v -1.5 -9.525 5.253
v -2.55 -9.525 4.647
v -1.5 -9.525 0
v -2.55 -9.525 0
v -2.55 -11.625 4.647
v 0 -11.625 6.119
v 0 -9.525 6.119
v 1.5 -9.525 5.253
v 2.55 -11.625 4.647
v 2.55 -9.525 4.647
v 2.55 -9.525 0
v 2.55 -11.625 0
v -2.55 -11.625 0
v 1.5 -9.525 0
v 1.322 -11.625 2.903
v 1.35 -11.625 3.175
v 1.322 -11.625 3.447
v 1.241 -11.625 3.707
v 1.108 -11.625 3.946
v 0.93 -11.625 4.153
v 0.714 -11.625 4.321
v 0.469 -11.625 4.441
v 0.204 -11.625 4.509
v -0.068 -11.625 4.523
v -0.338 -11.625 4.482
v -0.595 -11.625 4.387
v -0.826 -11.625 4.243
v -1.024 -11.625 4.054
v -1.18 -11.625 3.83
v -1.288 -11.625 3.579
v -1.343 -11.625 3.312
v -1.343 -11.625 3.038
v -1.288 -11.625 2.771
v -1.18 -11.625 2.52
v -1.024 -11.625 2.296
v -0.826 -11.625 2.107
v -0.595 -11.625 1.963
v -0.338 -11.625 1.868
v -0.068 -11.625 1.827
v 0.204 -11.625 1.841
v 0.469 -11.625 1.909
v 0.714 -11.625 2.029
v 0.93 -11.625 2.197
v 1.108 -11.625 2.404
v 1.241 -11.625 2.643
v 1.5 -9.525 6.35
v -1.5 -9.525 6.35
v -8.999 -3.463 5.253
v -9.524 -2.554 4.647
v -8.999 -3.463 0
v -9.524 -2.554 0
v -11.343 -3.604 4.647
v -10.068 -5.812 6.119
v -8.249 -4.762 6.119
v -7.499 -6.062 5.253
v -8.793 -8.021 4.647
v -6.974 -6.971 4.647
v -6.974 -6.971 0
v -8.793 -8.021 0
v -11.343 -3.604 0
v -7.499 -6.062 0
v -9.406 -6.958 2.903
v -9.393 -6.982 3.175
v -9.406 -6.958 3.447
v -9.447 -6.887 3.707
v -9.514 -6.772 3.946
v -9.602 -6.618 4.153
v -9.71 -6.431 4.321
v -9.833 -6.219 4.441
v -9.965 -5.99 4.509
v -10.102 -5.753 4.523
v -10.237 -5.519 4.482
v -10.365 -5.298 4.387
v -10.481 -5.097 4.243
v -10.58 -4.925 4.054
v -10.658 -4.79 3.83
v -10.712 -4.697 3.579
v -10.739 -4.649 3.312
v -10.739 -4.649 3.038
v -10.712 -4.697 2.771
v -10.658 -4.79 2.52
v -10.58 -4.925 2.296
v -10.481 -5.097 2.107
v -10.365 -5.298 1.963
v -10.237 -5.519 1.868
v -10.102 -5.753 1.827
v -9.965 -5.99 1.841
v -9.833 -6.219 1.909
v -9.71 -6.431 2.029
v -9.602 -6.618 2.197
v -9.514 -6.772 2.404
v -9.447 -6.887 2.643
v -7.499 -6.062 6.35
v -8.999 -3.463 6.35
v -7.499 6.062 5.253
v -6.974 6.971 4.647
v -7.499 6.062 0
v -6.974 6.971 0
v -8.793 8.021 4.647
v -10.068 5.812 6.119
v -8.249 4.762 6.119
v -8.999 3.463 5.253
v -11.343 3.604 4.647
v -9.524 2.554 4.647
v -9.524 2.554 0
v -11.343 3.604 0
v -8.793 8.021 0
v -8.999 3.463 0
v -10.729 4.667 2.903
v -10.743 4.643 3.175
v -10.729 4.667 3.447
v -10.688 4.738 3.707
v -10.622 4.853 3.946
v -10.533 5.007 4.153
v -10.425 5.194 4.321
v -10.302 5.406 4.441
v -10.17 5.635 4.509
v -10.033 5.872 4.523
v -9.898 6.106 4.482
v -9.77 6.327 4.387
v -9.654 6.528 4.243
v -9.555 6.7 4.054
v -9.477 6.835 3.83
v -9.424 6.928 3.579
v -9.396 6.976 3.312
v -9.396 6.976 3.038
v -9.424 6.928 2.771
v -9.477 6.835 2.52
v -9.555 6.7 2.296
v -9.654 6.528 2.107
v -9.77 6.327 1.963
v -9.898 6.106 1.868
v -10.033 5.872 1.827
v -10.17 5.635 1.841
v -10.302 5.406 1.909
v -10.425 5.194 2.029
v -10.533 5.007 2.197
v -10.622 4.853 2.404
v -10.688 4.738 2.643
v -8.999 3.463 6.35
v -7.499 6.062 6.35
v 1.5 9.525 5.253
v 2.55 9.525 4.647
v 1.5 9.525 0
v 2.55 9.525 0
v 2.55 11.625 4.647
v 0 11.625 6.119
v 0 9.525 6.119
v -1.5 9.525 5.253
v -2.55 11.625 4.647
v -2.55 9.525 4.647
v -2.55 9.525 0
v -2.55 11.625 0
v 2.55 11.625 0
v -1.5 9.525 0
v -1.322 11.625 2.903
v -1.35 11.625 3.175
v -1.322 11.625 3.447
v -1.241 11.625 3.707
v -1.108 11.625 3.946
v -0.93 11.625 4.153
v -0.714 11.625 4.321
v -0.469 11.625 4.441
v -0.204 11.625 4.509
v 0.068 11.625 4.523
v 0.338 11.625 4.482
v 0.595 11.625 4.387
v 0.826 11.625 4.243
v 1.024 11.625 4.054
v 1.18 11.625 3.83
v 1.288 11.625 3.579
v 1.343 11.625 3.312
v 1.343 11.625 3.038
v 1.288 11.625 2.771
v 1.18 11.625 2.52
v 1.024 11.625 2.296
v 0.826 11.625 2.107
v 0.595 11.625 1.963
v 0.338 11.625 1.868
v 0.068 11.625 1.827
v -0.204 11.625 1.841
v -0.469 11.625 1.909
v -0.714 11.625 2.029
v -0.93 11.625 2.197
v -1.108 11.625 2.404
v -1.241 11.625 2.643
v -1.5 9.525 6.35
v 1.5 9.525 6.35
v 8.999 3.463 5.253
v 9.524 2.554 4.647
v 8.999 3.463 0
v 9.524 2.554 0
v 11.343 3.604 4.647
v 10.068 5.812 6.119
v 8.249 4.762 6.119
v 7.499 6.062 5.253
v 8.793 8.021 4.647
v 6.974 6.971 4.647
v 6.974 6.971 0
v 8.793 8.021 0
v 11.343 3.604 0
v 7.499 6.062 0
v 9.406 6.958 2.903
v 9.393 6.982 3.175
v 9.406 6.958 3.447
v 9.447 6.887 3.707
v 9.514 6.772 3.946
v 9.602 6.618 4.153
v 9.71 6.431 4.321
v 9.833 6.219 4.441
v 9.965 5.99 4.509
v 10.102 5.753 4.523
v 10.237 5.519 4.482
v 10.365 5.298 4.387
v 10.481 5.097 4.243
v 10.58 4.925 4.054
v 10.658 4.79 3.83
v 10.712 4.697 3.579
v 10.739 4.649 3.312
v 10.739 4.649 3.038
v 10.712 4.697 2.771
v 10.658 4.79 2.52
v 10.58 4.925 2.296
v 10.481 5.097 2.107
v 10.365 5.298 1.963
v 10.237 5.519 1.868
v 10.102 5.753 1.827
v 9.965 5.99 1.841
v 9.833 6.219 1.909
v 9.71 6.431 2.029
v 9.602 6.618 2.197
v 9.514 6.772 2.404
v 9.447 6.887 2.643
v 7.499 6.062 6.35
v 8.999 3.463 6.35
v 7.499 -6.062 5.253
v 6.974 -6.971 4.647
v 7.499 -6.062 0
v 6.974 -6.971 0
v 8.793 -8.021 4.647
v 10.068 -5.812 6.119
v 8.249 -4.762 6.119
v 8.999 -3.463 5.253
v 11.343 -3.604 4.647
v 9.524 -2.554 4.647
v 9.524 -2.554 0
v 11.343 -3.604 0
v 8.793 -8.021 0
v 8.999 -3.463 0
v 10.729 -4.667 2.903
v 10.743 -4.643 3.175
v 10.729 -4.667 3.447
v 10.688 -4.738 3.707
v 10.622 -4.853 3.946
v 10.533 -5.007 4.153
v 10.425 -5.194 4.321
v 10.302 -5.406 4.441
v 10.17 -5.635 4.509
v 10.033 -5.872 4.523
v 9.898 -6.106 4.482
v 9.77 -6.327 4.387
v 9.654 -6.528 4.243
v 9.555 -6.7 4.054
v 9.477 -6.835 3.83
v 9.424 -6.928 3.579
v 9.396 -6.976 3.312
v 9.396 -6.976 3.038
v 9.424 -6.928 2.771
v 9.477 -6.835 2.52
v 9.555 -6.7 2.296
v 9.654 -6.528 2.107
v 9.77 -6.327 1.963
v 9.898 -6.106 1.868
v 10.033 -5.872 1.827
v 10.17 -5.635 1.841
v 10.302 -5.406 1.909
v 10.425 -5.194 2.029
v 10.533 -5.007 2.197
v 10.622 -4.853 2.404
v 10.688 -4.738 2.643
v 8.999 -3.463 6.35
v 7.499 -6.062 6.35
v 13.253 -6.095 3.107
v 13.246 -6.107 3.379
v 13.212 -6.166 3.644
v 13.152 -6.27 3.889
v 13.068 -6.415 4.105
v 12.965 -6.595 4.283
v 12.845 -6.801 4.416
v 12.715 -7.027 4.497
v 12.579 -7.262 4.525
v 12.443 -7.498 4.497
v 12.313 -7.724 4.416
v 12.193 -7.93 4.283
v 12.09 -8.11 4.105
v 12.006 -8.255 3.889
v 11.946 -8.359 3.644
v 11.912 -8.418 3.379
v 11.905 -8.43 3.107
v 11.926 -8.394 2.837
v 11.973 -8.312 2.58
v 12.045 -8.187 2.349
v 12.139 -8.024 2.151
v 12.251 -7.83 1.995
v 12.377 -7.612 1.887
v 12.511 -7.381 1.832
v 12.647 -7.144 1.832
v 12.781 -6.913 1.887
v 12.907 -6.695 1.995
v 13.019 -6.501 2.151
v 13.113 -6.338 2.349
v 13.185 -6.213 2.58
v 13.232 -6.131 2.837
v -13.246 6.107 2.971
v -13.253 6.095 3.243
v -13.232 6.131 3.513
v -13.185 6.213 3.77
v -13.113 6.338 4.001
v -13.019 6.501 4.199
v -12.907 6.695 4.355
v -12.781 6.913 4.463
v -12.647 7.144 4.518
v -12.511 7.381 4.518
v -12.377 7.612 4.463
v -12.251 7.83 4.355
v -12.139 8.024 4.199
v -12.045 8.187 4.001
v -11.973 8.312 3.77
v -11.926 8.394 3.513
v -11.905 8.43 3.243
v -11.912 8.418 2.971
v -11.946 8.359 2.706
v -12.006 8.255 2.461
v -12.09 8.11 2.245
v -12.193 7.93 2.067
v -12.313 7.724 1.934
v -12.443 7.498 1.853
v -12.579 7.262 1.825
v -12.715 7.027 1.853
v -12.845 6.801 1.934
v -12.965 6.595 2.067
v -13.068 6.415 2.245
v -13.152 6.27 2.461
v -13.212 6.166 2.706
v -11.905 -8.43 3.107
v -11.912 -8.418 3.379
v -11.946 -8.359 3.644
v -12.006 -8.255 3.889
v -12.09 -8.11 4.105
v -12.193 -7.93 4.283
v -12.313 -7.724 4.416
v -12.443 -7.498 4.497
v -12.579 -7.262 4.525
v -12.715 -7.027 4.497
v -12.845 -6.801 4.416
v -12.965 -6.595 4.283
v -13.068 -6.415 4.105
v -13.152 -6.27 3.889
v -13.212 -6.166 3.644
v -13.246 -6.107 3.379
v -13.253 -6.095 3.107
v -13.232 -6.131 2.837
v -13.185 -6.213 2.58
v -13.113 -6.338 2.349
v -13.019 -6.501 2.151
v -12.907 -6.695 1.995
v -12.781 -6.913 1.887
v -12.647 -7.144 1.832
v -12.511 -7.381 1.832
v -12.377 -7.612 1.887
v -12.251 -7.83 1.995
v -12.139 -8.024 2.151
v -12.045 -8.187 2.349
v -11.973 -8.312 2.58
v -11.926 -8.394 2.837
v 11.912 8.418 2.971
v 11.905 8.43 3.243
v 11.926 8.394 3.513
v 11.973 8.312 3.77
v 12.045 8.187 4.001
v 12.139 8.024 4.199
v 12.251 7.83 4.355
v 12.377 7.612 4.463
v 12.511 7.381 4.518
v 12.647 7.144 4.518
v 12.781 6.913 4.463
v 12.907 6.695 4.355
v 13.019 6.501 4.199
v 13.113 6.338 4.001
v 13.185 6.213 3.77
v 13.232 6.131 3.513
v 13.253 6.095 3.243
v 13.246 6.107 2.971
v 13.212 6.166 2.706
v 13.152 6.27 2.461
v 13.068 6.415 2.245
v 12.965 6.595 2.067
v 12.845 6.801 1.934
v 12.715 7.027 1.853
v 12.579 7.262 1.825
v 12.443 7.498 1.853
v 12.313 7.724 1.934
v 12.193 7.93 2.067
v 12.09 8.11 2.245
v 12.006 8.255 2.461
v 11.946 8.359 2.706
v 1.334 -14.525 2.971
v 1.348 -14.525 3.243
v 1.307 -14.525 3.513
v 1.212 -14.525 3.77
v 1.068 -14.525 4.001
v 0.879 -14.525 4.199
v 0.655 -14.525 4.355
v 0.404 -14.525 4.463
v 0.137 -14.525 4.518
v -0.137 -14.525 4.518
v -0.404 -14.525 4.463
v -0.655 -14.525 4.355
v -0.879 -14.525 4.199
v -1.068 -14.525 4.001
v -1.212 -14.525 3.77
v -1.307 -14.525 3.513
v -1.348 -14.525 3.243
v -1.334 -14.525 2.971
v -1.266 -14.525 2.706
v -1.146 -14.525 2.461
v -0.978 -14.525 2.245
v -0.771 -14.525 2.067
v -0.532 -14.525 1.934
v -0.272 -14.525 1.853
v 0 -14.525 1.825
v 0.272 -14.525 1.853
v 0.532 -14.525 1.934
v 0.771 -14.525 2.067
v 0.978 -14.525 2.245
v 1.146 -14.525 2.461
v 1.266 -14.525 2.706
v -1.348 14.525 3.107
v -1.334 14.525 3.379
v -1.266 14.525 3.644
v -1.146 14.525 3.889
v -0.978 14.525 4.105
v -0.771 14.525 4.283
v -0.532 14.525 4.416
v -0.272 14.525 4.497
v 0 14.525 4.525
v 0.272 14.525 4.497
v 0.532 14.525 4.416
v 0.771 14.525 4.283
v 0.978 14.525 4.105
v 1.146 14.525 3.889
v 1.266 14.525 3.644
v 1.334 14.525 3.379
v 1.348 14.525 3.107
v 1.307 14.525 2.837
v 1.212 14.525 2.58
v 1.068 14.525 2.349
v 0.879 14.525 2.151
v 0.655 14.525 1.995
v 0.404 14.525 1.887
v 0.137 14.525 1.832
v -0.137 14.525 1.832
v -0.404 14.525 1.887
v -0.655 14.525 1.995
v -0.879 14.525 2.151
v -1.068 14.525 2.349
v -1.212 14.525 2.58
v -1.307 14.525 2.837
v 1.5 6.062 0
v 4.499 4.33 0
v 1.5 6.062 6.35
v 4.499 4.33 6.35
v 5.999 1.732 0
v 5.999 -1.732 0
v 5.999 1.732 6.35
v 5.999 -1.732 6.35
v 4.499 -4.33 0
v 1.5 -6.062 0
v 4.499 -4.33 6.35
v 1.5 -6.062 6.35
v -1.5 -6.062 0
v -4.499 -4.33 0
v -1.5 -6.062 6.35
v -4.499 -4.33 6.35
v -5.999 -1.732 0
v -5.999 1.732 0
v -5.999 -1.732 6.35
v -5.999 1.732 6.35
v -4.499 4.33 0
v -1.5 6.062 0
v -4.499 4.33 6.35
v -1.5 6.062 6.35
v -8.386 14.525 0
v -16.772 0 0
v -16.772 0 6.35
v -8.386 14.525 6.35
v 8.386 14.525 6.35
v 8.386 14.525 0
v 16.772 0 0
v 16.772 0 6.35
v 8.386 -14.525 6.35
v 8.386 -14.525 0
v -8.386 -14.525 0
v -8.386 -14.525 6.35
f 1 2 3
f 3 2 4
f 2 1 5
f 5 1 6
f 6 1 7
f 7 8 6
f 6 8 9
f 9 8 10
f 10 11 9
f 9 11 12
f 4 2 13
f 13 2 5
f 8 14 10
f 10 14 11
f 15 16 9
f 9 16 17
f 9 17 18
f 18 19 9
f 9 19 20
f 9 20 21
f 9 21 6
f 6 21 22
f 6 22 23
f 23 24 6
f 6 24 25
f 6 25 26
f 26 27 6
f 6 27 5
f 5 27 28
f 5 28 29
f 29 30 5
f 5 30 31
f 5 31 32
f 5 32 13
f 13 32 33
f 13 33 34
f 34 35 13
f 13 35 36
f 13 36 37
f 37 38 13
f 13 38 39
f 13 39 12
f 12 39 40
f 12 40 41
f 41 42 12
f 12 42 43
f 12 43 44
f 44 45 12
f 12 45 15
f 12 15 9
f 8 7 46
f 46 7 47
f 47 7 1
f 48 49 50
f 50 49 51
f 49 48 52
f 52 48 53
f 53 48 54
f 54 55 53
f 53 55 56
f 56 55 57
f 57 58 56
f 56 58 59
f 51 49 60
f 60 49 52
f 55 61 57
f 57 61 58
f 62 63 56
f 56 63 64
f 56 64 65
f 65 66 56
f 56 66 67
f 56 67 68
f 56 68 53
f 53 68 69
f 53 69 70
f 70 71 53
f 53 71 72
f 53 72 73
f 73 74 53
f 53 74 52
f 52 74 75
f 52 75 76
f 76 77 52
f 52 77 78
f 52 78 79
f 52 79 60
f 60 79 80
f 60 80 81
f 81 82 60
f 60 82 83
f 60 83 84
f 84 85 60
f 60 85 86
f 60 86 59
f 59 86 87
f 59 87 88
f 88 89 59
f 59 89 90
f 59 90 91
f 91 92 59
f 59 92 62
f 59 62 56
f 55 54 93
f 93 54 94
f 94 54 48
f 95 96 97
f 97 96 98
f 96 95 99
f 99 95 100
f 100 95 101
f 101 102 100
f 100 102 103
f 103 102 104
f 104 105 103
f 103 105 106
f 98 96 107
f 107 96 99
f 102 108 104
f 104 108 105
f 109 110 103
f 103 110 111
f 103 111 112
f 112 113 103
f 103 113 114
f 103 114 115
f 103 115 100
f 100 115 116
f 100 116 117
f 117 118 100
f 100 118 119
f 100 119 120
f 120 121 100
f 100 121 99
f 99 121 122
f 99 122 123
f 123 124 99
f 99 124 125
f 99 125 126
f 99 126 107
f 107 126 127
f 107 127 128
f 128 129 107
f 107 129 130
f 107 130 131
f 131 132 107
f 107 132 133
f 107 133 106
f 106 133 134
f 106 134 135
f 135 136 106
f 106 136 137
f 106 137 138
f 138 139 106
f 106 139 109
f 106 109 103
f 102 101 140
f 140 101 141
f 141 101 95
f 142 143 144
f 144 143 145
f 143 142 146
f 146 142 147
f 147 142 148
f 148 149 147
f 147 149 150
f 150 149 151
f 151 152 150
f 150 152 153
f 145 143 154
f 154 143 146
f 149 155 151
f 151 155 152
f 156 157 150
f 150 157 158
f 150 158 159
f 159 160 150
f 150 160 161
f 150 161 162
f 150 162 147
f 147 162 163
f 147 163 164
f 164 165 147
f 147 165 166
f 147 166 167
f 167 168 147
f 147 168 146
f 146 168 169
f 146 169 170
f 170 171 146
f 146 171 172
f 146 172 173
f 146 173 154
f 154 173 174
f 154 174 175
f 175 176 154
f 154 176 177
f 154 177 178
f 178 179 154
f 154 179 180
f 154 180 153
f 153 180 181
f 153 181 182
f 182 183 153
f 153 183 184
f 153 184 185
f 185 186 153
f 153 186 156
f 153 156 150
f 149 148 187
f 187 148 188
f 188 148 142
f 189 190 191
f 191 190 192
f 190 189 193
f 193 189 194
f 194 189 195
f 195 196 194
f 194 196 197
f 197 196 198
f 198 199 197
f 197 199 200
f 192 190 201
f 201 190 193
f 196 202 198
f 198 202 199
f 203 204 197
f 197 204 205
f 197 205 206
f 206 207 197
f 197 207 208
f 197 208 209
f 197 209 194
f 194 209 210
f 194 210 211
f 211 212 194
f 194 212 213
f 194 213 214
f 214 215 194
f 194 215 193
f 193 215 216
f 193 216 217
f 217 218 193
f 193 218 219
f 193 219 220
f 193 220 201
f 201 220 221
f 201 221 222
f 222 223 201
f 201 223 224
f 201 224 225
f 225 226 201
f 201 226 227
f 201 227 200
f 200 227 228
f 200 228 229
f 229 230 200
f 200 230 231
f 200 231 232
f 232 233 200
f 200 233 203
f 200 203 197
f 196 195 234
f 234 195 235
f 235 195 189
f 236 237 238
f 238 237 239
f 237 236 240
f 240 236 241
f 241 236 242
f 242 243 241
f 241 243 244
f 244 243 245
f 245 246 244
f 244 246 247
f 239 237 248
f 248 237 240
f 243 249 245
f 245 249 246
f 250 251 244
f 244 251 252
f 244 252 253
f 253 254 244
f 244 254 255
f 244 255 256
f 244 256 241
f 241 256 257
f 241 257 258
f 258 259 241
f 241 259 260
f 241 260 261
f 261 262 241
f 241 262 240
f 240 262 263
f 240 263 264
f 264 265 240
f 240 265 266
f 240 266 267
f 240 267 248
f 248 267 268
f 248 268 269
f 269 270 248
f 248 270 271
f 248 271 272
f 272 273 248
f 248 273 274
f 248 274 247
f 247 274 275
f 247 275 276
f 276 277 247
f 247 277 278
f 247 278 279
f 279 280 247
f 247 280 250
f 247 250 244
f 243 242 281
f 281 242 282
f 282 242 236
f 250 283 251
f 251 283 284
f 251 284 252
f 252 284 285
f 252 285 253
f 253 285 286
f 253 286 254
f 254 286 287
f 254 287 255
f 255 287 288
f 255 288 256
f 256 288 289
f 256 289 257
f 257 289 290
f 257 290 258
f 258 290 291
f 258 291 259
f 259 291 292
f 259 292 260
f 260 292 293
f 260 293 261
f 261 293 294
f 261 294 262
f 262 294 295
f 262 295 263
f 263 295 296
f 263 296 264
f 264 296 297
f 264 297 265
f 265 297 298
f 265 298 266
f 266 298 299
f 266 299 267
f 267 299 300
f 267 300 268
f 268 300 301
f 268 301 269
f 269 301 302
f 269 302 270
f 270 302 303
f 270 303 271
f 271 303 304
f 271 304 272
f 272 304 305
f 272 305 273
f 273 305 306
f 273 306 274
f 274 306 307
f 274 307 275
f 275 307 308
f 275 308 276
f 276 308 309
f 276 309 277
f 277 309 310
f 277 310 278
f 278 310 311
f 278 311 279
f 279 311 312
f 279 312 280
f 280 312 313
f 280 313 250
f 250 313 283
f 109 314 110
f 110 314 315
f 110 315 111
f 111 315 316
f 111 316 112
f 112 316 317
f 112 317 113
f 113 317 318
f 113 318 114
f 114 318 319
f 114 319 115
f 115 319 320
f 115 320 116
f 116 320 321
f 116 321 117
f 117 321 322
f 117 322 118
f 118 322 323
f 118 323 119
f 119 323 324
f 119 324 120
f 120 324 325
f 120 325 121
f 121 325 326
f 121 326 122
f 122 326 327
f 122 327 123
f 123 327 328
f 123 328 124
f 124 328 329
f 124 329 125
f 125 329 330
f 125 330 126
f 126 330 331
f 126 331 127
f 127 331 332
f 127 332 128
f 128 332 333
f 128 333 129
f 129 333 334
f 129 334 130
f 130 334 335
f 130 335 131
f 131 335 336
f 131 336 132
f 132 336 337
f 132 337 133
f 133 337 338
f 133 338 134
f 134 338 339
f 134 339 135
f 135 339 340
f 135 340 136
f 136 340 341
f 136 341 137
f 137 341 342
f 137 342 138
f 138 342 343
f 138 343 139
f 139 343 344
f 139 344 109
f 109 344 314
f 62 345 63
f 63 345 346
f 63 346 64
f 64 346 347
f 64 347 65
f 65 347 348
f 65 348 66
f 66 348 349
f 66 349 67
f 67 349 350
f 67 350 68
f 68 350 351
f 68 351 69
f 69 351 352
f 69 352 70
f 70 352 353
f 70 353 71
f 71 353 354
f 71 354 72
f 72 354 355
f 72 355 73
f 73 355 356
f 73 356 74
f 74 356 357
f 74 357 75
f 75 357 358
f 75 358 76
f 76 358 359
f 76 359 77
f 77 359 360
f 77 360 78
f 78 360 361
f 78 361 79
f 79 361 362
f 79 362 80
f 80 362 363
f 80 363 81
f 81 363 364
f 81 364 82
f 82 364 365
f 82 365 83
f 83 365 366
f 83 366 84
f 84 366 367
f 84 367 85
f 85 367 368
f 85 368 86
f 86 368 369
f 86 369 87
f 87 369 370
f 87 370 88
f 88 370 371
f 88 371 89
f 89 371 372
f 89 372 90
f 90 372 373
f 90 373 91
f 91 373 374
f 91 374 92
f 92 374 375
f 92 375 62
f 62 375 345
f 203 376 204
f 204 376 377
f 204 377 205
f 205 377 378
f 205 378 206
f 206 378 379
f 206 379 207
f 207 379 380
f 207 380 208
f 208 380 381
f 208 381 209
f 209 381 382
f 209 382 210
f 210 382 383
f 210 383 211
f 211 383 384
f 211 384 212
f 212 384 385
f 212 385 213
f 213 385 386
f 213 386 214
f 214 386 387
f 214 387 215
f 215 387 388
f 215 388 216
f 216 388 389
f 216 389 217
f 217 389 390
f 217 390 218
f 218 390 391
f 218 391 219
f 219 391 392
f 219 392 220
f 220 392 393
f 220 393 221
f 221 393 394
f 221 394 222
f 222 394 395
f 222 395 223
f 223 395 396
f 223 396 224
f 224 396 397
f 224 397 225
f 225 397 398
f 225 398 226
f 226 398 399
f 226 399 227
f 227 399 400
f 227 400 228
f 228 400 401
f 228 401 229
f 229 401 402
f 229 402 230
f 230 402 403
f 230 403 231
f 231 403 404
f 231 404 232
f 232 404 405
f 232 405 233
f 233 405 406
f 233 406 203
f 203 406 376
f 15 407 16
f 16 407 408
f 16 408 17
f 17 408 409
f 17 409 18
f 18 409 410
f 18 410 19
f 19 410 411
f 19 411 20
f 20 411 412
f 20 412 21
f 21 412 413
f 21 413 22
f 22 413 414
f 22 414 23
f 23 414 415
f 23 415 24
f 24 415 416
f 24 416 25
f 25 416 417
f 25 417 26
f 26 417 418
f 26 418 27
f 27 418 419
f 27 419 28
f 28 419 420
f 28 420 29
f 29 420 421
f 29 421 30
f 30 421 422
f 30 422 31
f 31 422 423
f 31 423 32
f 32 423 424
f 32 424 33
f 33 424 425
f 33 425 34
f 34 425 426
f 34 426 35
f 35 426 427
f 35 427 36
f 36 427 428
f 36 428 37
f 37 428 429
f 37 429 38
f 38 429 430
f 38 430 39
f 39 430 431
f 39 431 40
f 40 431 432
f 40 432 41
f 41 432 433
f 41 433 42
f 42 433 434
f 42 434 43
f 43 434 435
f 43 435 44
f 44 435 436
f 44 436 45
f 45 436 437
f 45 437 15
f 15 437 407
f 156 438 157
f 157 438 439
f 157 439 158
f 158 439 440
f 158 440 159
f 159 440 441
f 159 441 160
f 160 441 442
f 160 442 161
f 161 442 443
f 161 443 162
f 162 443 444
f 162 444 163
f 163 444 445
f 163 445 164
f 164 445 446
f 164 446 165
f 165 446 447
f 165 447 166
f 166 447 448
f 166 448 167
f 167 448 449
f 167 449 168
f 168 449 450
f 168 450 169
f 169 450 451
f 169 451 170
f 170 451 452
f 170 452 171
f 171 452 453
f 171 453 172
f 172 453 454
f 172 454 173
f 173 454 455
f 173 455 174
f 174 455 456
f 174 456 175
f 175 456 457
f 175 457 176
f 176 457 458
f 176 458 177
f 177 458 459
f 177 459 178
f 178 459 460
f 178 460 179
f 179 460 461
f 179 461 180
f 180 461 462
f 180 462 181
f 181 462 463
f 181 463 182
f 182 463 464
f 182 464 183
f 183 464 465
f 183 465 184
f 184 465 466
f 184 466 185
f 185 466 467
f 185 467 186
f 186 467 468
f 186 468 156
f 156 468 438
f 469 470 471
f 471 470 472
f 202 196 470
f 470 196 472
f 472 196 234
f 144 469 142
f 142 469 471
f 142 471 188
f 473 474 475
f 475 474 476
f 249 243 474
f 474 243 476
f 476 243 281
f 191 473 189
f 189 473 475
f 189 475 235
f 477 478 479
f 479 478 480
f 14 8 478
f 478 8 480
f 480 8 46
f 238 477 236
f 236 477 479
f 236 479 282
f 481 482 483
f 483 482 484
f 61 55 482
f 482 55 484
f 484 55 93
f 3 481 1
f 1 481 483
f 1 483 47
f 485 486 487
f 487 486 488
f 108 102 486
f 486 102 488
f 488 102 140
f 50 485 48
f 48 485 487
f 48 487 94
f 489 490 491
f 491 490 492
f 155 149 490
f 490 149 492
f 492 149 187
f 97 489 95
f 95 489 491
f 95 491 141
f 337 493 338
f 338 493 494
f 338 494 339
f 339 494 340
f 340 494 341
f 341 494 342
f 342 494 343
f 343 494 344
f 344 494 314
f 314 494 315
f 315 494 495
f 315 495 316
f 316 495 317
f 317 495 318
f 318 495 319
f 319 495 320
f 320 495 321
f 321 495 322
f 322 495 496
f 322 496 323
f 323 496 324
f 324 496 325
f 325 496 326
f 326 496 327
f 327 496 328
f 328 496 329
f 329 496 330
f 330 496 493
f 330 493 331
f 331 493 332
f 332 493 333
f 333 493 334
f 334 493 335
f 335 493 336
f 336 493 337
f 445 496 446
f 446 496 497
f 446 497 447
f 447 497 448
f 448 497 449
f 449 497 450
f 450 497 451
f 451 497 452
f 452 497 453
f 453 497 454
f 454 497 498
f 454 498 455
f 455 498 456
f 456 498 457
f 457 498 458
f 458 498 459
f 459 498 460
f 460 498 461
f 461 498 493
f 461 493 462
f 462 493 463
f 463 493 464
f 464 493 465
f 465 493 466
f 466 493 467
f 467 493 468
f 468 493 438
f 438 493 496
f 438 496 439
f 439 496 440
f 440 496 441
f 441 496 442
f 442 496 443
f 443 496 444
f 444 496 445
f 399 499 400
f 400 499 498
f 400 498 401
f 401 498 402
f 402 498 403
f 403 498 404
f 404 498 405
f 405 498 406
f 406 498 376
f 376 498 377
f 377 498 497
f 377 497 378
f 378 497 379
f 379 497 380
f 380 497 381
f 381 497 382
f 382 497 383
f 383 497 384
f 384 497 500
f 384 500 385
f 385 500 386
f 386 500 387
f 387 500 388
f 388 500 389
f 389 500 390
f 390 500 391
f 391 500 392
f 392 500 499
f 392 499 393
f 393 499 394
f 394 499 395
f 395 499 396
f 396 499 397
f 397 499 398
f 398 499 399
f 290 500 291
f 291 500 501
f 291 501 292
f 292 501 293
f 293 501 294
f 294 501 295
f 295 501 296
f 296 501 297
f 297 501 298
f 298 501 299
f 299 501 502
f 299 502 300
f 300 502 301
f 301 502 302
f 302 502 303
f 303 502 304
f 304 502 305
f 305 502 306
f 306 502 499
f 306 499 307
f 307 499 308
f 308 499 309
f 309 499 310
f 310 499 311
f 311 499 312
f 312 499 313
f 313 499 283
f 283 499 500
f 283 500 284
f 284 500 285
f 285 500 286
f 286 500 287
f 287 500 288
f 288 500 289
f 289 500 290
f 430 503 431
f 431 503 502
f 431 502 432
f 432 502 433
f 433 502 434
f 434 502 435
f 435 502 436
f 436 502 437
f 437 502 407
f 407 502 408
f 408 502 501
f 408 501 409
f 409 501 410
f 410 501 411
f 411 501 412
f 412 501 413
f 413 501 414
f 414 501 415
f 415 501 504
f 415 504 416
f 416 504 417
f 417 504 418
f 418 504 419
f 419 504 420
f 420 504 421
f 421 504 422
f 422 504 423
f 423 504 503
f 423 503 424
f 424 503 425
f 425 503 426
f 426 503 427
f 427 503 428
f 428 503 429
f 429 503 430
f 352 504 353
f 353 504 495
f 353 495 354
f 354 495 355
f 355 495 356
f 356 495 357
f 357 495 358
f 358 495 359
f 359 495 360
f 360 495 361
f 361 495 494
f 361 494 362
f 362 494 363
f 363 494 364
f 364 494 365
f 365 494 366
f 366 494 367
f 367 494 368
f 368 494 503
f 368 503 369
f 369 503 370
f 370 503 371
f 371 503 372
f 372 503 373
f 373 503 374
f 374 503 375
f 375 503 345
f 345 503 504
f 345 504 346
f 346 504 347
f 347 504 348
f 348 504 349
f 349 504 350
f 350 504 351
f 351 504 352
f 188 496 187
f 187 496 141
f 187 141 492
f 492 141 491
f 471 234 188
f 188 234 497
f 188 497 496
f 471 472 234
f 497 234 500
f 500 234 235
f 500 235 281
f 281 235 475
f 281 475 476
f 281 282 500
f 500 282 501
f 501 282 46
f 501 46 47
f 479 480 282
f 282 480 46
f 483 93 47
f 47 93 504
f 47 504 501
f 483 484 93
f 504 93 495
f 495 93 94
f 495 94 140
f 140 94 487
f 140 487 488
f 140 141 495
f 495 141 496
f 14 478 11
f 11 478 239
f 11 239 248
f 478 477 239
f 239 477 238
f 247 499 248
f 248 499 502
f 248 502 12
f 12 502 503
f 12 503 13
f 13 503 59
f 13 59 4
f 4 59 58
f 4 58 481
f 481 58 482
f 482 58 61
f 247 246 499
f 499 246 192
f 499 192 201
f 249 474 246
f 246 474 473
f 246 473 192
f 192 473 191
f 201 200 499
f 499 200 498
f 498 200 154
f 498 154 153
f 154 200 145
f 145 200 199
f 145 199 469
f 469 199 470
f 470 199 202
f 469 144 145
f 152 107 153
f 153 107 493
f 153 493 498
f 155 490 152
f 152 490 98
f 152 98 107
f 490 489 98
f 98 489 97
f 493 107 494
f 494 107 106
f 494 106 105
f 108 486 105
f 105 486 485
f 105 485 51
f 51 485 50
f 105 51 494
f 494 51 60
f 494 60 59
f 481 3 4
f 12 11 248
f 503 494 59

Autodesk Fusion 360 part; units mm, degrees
sketch "Sketch1" plane through (0, 0, 0) normal (0, 0, 1) x (1, 0, 0)
  line L0 (-5.4993, 9.525) -> (-10.9985, 0)
  line L1 (-10.9985, 0) -> (-5.4993, -9.525)
  line L2 (-5.4993, -9.525) -> (5.4993, -9.525)
  line L3 (5.4993, -9.525) -> (10.9985, 0)
  line L4 (10.9985, 0) -> (5.4993, 9.525)
  line L5 (5.4993, 9.525) -> (-5.4993, 9.525)
  line L6 (-8.386, -14.525) -> (8.386, -14.525)
  line L7 (8.386, -14.525) -> (16.772, 0)
  line L8 (16.772, 0) -> (8.386, 14.525)
  line L9 (8.386, 14.525) -> (-8.386, 14.525)
  line L10 (-8.386, 14.525) -> (-16.772, 0)
  line L11 (-16.772, 0) -> (-8.386, -14.525)
  dimension "d1" = 19.05
  dimension "d2" = 5
extrude "Extrude1" add sketch "Sketch1" along normal blind 6.35
sketch "Sketch2" plane through (0, 0, 6.35) normal (0, 0, 1) x (-1, 0, 0)
  line L0 (5.4993, -9.525) -> (-5.4993, -9.525)
  line L1 (-5.4993, -9.525) -> (-10.9985, 0)
  line L2 (-10.9985, 0) -> (-5.4993, 9.525)
  line L3 (-5.4993, 9.525) -> (5.4993, 9.525)
  line L4 (5.4993, 9.525) -> (10.9985, 0)
  line L5 (10.9985, 0) -> (5.4993, -9.525)
  line L6 (16.772, 0) -> (8.386, 14.525)
  line L7 (8.386, 14.525) -> (-8.386, 14.525)
  line L8 (-8.386, 14.525) -> (-16.772, 0)
  line L9 (-16.772, 0) -> (-8.386, -14.525)
  line L10 (-8.386, -14.525) -> (8.386, -14.525)
  line L11 (8.386, -14.525) -> (16.772, 0)
  line L12 (1.5, -9.525) -> (1.5, -2.5981)
  line L13 (1.5, -2.5981) -> (7.4989, -6.0615)
  line L14 (1.5, -6.0615) -> (4.4994, -4.3298)
  dimension "d5" = 1.5
extrude "Extrude2" add sketch "Sketch2" against normal up to surface (6.35 mm away) contours L0 L5 L12 L13 L14
pattern_circular "C-Pattern1" count 6 over 360 about axis through (0, 0, 1.75) along (0, 0, 1) of "Extrude2"
sketch "Sketch3" plane through (0, 14.525, 0) normal (0, 1, 0) x (-1, 0, 0)
  line L0 (-8.386, 0) -> (8.386, 0)
  line L1 (8.386, 0) -> (8.386, 6.35)
  line L2 (8.386, 6.35) -> (-8.386, 6.35)
  line L3 (-8.386, 6.35) -> (-8.386, 0)
  point P0 (0, 3.175)
  point P1 (8.386, 3.175)
hole "Hole1" at (0, 14.525, 3.175) direction (0, -1, 0) diameter 2.7 end through all
pattern_circular "C-Pattern2" count 3 over 360 about axis through (0, 0, 1.75) along (0, 0, 1) of "Hole1"
sketch "Sketch4" plane through (8.2489, -4.7625, 0) normal (-0.866, 0.5, 0) x (-0.5, -0.866, 0)
  circle A0 centre (0, 3.175) radius 1.35
  line L0 (-1.5, 6.35) -> (-1.5, 0)
  line L1 (-1.5, 0) -> (1.5, 0)
  line L2 (1.5, 0) -> (1.5, 6.35)
  line L3 (1.5, 6.35) -> (-1.5, 6.35)
  line L4 (-2.55, 1.7028) -> (0, 0.2305)
  line L5 (0, 0.2305) -> (2.55, 1.7028)
  line L6 (2.55, 1.7028) -> (2.55, 4.6472)
  line L7 (2.55, 4.6472) -> (0, 6.1195)
  line L8 (0, 6.1195) -> (-2.55, 4.6472)
  line L9 (-2.55, 4.6472) -> (-2.55, 1.7028)
  line L10 (-2.55, 1.7028) -> (-2.55, 0)
  line L11 (-2.55, 0) -> (2.55, 0)
  line L12 (2.55, 0) -> (2.55, 1.7028)
  point P0 (0, 3.175)
  dimension "d15" = 5.1
extrude "Extrude3" cut sketch "Sketch4" against normal blind 2.1 contours L0 L2 L4 L5 L7 L8 | L0 L4 L8 L9 | L0 L1 L2 L4 L5 L11 | L0 L4 L10 L11 | L2 L5 L6 L7 | L2 L5 L11 L12
pattern_circular "C-Pattern3" count 6 over 360 about axis through (0, 0, 1.75) along (0, 0, 1) of "Extrude3"
